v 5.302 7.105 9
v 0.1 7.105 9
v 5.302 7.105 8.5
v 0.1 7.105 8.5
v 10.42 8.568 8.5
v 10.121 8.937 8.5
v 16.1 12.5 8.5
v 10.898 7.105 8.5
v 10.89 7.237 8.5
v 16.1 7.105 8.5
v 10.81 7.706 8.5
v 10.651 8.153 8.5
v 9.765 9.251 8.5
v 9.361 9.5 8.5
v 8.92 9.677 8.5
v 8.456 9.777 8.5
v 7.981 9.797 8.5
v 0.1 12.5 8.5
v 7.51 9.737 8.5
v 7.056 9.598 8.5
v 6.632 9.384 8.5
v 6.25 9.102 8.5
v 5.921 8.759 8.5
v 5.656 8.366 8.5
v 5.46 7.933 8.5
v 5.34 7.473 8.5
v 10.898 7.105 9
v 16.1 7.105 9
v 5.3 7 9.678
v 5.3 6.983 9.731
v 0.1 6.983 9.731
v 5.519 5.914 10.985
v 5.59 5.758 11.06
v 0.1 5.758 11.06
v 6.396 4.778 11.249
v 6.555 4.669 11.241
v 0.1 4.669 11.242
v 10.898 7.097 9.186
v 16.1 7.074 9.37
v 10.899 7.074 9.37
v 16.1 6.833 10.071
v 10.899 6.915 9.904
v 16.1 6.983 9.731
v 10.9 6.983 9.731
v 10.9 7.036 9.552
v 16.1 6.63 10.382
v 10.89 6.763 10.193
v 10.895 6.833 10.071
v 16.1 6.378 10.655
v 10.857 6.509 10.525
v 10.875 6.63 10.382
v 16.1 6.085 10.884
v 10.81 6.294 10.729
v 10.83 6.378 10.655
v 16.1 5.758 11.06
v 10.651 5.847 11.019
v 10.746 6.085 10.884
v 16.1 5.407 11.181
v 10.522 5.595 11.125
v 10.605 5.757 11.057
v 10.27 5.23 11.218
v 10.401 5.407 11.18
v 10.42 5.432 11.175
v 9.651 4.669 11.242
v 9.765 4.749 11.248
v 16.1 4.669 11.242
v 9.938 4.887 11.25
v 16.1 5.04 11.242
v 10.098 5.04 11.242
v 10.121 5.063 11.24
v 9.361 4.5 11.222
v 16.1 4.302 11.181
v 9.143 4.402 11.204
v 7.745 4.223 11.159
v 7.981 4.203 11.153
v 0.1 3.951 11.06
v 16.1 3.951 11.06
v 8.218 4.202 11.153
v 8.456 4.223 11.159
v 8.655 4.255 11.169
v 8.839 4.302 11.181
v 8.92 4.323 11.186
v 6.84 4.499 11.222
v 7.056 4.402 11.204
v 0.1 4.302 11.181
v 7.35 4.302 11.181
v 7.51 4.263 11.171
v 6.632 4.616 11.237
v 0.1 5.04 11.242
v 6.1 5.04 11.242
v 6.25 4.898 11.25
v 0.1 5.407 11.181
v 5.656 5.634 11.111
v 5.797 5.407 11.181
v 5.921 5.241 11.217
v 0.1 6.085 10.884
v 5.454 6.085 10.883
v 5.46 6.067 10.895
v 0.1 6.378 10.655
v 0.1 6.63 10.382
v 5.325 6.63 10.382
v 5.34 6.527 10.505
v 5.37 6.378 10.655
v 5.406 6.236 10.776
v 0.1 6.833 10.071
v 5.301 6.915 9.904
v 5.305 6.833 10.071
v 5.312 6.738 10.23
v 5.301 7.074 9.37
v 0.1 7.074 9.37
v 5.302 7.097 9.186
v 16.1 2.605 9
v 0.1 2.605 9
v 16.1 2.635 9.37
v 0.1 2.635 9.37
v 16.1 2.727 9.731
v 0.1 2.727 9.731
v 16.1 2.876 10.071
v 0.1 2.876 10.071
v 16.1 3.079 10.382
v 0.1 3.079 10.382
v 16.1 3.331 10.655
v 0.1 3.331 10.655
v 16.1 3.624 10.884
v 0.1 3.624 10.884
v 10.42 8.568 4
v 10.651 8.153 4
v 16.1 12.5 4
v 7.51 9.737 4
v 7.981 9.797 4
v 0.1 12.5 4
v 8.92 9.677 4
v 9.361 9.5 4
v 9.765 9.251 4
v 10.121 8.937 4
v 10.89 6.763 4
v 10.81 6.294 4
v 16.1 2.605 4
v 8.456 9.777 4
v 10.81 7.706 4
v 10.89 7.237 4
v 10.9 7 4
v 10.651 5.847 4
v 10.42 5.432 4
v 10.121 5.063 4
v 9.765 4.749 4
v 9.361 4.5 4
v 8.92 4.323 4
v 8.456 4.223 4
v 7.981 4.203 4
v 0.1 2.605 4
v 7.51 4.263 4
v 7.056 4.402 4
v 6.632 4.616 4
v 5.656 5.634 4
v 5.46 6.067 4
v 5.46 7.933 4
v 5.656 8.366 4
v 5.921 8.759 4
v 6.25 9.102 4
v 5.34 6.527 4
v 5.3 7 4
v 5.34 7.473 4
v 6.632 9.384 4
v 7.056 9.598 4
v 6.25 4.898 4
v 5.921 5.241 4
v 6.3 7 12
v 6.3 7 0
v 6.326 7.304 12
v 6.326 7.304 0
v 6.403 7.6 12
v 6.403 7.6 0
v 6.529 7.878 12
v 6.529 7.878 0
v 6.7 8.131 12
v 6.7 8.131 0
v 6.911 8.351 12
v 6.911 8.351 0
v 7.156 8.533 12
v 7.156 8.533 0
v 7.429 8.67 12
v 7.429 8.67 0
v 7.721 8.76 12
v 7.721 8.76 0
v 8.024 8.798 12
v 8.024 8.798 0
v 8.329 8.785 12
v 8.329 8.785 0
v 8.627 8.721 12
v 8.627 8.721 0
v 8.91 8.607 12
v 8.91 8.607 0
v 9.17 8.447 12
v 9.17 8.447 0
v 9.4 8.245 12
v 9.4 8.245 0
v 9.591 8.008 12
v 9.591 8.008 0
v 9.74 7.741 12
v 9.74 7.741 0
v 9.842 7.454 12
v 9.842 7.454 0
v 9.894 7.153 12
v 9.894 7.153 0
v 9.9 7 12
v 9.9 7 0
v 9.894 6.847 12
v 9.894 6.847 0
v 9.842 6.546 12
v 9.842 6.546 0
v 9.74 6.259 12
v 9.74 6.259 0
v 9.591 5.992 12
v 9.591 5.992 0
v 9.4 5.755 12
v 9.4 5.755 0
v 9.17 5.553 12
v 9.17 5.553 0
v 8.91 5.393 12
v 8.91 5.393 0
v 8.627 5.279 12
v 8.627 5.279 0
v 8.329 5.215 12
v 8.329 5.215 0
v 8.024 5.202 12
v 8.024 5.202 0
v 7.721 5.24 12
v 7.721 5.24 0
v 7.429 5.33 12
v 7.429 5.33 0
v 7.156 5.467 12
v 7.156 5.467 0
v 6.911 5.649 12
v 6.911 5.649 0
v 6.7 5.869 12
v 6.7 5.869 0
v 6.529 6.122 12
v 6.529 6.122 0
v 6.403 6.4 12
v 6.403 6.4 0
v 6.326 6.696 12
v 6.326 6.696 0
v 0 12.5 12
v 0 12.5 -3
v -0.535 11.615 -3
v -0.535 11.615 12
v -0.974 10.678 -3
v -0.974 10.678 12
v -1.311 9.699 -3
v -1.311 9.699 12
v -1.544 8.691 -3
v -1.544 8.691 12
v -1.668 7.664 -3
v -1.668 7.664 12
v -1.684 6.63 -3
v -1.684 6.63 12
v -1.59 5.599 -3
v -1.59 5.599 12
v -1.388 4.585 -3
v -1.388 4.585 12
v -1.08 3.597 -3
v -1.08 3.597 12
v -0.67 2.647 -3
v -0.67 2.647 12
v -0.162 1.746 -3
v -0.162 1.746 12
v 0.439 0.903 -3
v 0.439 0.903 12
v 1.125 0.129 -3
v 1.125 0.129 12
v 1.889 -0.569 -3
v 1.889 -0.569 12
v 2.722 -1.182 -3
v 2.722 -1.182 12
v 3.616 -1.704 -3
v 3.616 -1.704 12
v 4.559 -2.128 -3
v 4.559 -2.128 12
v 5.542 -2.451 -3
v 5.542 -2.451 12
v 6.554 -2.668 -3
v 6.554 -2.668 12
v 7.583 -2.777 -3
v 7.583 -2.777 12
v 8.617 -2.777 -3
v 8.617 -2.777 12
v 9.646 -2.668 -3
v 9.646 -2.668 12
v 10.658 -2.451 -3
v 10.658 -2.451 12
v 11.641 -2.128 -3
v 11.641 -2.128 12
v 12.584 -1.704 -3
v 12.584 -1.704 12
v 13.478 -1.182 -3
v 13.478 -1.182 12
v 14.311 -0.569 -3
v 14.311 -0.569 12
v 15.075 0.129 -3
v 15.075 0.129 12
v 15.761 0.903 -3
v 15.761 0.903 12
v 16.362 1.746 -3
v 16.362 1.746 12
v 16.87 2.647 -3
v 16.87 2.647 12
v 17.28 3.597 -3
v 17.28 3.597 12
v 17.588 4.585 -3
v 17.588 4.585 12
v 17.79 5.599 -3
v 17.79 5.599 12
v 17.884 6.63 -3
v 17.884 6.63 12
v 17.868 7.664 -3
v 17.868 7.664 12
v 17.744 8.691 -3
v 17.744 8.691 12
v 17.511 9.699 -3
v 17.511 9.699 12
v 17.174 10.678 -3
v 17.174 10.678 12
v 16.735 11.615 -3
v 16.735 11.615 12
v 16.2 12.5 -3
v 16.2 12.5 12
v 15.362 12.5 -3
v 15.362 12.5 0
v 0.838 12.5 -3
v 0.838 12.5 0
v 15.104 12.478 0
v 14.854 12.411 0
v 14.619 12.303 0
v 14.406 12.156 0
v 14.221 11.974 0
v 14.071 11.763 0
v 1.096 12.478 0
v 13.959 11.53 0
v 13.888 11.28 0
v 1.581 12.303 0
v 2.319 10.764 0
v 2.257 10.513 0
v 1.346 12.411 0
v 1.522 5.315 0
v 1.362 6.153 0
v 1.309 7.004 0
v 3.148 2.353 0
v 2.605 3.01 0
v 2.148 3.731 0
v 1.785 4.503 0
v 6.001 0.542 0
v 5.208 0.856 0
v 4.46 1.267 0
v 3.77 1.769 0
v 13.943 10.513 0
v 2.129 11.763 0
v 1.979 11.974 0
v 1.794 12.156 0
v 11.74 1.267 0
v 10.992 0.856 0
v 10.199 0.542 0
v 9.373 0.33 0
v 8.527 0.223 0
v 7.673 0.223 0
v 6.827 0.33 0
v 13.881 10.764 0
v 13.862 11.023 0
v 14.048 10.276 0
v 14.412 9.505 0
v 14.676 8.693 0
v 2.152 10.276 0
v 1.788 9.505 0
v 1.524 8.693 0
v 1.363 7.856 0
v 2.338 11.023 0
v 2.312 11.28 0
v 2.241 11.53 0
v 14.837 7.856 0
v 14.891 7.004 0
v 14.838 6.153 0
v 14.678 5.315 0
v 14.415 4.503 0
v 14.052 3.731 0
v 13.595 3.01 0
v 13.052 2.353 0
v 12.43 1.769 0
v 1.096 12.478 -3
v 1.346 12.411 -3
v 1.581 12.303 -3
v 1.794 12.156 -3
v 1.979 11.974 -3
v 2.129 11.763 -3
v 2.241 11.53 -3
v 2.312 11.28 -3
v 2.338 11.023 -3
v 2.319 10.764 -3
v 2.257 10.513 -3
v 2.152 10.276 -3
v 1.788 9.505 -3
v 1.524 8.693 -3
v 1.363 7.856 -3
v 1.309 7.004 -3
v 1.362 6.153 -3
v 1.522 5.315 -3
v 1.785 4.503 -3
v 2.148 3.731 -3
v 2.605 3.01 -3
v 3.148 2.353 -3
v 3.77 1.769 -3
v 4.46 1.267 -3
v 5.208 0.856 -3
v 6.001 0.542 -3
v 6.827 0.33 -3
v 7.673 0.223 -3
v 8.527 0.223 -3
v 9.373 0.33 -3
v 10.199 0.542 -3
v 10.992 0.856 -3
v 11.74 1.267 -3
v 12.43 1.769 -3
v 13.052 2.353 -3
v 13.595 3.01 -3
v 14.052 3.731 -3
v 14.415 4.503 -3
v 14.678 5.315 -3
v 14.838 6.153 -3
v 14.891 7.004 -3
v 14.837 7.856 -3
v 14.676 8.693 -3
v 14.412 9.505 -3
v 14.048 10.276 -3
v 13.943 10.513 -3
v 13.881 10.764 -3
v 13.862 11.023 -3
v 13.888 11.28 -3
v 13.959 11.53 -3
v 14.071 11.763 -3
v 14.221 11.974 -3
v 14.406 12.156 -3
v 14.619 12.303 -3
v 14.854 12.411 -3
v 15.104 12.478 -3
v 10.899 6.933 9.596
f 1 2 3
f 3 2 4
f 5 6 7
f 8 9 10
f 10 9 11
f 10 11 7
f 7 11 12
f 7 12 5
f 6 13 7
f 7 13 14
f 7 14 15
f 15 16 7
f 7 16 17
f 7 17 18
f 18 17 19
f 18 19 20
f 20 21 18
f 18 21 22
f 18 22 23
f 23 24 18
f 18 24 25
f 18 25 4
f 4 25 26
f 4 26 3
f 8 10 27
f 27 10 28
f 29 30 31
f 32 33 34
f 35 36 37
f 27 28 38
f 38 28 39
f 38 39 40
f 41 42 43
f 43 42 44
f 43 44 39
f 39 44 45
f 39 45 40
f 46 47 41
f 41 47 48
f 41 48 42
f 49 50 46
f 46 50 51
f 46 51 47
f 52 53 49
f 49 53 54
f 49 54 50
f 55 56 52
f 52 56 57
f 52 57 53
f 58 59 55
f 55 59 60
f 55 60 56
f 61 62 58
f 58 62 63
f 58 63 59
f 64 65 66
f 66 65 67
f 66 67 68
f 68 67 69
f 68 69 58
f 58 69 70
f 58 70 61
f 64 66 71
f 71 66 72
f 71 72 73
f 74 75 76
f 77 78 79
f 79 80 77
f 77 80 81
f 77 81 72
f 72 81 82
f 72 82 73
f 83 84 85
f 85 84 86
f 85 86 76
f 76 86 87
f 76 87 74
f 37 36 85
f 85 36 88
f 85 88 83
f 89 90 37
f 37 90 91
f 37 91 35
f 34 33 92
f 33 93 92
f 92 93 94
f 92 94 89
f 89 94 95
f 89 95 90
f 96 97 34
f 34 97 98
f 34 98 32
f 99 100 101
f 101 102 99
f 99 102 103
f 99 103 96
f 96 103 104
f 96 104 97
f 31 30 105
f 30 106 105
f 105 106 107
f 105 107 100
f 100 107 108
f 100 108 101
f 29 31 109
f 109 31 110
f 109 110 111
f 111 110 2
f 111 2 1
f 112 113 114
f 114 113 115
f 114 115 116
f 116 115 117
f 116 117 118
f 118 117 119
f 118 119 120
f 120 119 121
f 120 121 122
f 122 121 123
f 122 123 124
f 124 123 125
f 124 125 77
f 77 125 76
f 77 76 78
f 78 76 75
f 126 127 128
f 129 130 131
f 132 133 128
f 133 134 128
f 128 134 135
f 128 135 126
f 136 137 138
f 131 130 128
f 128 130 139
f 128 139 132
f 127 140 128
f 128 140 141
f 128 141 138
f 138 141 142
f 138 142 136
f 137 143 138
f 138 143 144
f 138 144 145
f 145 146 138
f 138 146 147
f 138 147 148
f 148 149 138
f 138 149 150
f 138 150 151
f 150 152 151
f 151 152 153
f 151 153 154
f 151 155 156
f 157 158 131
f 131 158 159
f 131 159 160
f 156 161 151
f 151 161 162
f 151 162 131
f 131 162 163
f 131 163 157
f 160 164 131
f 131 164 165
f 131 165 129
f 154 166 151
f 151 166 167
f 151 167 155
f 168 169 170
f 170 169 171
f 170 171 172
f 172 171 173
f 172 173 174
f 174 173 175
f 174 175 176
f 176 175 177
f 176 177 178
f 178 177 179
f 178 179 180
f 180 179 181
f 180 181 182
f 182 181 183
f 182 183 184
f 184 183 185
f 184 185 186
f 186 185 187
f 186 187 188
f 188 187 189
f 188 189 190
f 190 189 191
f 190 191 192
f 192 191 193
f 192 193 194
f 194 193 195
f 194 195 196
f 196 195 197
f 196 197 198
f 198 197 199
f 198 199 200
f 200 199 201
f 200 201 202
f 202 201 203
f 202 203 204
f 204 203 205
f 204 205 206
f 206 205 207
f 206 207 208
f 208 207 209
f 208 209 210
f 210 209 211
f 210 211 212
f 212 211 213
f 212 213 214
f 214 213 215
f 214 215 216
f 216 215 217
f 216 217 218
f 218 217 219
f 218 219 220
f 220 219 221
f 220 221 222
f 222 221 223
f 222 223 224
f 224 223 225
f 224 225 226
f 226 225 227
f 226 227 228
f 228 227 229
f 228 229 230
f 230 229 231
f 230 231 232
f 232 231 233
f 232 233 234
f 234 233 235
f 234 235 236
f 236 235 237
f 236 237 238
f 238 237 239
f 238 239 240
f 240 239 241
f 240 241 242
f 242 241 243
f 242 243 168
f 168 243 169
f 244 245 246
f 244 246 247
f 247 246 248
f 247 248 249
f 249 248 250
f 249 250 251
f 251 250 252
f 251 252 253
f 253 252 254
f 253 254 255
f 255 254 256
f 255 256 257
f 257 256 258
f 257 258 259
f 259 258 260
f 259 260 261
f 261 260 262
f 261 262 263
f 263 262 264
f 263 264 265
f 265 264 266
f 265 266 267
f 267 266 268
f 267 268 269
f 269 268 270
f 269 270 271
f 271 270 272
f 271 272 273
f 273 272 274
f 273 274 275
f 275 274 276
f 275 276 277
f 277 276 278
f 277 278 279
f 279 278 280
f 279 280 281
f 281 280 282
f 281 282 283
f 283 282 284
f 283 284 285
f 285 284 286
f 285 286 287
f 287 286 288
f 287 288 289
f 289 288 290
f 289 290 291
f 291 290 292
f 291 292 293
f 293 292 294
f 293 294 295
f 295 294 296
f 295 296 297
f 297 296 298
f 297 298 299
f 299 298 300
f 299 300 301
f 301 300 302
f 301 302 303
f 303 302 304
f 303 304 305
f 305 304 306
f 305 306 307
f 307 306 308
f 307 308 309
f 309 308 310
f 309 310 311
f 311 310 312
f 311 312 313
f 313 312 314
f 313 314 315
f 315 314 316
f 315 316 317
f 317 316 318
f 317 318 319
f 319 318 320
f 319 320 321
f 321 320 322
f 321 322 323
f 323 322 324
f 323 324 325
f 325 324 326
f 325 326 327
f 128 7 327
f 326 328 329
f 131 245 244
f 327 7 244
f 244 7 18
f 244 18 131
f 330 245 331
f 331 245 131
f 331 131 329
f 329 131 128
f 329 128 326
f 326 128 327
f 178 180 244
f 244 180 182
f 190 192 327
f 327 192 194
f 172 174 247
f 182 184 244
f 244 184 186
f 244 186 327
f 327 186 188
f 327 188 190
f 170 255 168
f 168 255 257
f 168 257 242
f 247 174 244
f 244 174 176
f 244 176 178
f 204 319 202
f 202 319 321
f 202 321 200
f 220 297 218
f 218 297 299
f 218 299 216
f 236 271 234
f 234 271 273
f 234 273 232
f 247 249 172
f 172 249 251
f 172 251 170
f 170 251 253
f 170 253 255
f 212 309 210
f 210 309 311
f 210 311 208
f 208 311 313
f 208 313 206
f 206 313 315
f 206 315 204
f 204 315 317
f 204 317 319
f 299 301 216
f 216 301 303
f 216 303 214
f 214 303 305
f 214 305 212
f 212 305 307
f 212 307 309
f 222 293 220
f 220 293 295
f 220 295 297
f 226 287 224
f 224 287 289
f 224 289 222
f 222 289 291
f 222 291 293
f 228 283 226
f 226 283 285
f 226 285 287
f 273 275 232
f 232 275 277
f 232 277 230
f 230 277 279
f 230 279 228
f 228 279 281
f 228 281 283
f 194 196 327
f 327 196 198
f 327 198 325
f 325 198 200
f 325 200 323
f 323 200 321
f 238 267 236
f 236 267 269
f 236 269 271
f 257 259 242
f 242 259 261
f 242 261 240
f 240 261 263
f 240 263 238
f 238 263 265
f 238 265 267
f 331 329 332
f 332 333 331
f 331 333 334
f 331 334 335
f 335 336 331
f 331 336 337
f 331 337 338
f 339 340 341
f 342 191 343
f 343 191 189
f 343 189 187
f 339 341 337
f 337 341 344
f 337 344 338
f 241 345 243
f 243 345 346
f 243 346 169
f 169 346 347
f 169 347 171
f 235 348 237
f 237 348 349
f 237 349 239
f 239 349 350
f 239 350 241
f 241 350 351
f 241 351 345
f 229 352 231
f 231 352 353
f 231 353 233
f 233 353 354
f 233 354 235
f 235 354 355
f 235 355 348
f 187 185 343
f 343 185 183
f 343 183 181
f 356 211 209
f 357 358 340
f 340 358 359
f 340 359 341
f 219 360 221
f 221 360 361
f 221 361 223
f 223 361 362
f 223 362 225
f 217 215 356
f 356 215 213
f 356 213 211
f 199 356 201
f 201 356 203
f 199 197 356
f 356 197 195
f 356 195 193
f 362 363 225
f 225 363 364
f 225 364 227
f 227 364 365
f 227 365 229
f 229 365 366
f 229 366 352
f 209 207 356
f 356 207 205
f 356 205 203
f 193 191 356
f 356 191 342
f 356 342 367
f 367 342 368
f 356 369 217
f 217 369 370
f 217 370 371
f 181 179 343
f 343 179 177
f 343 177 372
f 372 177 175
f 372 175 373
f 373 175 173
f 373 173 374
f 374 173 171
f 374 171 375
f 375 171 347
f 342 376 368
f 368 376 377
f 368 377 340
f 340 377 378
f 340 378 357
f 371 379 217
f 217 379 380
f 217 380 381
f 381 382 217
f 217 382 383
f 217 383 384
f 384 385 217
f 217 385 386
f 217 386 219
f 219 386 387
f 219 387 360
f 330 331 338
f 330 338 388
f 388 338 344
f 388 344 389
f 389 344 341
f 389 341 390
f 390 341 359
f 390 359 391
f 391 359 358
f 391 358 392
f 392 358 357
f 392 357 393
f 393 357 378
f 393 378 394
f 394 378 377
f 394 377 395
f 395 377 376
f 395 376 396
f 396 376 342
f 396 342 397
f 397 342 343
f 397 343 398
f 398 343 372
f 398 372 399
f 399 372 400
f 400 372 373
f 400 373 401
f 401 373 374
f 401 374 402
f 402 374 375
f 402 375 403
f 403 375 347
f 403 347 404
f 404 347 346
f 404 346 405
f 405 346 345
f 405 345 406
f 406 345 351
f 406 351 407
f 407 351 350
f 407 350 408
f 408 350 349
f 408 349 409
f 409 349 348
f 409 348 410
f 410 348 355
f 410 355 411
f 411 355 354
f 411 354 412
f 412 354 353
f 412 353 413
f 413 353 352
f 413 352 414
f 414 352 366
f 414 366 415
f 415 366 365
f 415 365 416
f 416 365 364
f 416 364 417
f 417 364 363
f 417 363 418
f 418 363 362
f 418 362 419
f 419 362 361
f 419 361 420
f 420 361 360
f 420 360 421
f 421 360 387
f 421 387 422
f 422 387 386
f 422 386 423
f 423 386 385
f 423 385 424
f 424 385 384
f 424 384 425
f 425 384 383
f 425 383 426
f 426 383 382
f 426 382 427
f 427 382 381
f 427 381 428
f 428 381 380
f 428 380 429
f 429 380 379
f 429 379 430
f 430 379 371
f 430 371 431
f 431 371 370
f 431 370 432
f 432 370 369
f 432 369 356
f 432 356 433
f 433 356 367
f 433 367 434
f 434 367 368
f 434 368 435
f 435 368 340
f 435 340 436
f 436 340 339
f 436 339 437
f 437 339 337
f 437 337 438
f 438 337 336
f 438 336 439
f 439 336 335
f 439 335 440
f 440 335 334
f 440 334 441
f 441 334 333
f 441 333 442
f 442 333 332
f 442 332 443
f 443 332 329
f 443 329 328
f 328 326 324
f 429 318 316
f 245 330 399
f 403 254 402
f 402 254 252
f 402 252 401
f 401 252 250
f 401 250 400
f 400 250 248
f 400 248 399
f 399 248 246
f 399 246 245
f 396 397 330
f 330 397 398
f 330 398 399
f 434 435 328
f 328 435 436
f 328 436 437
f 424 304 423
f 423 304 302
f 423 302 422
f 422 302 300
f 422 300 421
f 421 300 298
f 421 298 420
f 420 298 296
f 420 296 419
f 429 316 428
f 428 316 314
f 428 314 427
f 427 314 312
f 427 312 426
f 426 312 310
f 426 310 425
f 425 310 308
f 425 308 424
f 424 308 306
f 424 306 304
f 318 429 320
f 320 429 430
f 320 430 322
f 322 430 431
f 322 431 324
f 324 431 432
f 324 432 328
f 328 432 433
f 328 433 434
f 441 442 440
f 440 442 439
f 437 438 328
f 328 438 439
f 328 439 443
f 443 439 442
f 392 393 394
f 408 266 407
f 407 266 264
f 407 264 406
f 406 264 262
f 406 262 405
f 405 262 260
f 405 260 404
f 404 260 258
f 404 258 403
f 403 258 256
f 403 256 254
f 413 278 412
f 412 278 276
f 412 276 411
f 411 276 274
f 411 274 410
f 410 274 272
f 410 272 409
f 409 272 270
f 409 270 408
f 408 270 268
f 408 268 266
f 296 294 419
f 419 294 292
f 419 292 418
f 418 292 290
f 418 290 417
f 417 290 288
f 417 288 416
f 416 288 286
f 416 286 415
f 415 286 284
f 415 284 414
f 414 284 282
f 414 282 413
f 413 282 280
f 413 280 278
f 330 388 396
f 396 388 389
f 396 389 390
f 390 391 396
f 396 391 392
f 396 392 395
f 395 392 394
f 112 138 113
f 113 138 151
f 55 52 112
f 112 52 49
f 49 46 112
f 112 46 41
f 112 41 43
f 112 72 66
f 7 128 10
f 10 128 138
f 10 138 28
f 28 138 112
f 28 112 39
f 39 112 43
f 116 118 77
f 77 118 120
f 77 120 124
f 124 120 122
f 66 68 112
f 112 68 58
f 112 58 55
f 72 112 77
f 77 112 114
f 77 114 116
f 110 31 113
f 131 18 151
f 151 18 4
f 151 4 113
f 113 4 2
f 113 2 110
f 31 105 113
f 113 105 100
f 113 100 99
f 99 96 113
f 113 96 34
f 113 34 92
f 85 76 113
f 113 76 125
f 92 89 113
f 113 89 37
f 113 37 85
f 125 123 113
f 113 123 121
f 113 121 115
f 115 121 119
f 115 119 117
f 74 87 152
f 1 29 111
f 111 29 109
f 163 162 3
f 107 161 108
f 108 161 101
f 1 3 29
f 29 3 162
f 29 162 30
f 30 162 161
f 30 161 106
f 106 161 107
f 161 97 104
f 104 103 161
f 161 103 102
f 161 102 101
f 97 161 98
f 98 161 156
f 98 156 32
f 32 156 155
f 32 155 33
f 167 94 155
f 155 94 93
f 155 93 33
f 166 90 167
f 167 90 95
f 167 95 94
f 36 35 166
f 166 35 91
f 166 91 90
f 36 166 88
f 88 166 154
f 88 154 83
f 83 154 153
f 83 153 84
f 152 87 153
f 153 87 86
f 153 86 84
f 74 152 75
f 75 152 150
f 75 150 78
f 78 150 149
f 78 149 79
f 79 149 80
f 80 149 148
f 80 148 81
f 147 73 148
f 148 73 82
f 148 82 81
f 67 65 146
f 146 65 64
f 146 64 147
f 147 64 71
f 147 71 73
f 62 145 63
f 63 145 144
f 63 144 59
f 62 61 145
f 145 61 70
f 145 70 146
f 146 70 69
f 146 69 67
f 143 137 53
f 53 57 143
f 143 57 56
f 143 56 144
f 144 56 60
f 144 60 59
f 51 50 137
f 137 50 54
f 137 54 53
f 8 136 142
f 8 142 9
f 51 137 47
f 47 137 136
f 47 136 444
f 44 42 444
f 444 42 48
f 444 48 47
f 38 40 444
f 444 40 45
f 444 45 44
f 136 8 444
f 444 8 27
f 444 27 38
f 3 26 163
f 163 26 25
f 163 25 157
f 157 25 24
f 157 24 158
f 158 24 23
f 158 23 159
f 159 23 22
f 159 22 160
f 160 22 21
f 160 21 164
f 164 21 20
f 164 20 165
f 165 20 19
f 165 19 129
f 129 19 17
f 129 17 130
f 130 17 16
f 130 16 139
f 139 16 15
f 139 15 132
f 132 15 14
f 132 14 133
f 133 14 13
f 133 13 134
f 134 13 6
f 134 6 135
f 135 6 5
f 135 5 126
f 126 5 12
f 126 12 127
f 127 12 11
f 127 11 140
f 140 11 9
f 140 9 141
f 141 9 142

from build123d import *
from build123d.topology import SkipClean

# Parameters (mm, degrees)
BOSS_EXTRUDE1_DEPTH     = 12
SKETCH3_R               = 1.8
CUT_EXTRUDE2_DEPTH      = 13
CUT_EXTRUDE2_DEPTH_BACK = 1
BOSS_EXTRUDE2_DEPTH     = 3
CUT_EXTRUDE4_DEPTH      = 16
SKETCH7_R               = 2.8
SKETCH7_R_2             = 1.8
BOSS_EXTRUDE3_DEPTH     = 8


with BuildPart() as part:
    # Sketch1 → Boss-Extrude1 (new body)
    with BuildSketch(Plane.XY):
        with BuildLine():
            Line((0, 12.5), (16.2, 12.5))
            ThreePointArc((16.2, 12.5), (8.1, -2.790812019), (0, 12.5))
        make_face()
    extrude(amount=BOSS_EXTRUDE1_DEPTH)

    # Sketch3 → Cut-Extrude2 (cut, two sides)
    with BuildSketch(Plane.XY) as cut_extrude2_sk:
        with Locations((8.1, 7)):
            Circle(SKETCH3_R)
    extrude(amount=CUT_EXTRUDE2_DEPTH, mode=Mode.SUBTRACT)
    extrude(cut_extrude2_sk.sketch, amount=-CUT_EXTRUDE2_DEPTH_BACK, mode=Mode.SUBTRACT)

    # Sketch4 → Boss-Extrude2 (add)
    with SkipClean():  # the faces are left unmerged after this step: merging them gives an invalid solid
        with BuildSketch(Plane.XY):
            with BuildLine():
                Line((16.2, 12.5), (15.362063339, 12.5))
                ThreePointArc((15.362063339, 12.5), (14.070641831, 11.763040292), (14.048187812, 10.276307316))
                ThreePointArc((14.048187812, 10.276307316), (8.1, 0.209187981), (2.151812188, 10.276307316))
                ThreePointArc((2.151812188, 10.276307316), (2.129358169, 11.763040292), (0.837936661, 12.5))
                Line((0.837936661, 12.5), (0, 12.5))
                ThreePointArc((0, 12.5), (8.1, -2.790812019), (16.2, 12.5))
            make_face()
        extrude(amount=-BOSS_EXTRUDE2_DEPTH)

    # Sketch6 → Cut-Extrude4 (cut)
    with SkipClean():  # the faces are left unmerged after this step: merging them gives an invalid solid
        with BuildSketch(Plane(origin=(0.1, 0, 0), x_dir=(0, 0, -1), z_dir=(1, 0, 0))):
            with BuildLine():
                Line((-9, 2.60459399), (-4, 2.60459399))
                Line((-4, 2.60459399), (-4, 12.5))
                Line((-4, 12.5), (-8.5, 12.5))
                Line((-8.5, 12.5), (-8.5, 7.10459399))
                Line((-8.5, 7.10459399), (-9, 7.10459399))
                ThreePointArc((-9, 7.10459399), (-11.25, 4.85459399), (-9, 2.60459399))
            make_face()
        extrude(amount=CUT_EXTRUDE4_DEPTH, mode=Mode.SUBTRACT)

    # Sketch7 → Boss-Extrude3 (add)
    with SkipClean():  # the faces are left unmerged after this step: merging them gives an invalid solid
        with BuildSketch(Plane.XY.offset(4)):
            with Locations(Location((8.1, 7, 0), (0, 0, 177.859218285))):
                Circle(SKETCH7_R)
            with Locations((8.1, 7)):
                Circle(SKETCH7_R_2, mode=Mode.SUBTRACT)
        extrude(amount=BOSS_EXTRUDE3_DEPTH)


solid = part.part
